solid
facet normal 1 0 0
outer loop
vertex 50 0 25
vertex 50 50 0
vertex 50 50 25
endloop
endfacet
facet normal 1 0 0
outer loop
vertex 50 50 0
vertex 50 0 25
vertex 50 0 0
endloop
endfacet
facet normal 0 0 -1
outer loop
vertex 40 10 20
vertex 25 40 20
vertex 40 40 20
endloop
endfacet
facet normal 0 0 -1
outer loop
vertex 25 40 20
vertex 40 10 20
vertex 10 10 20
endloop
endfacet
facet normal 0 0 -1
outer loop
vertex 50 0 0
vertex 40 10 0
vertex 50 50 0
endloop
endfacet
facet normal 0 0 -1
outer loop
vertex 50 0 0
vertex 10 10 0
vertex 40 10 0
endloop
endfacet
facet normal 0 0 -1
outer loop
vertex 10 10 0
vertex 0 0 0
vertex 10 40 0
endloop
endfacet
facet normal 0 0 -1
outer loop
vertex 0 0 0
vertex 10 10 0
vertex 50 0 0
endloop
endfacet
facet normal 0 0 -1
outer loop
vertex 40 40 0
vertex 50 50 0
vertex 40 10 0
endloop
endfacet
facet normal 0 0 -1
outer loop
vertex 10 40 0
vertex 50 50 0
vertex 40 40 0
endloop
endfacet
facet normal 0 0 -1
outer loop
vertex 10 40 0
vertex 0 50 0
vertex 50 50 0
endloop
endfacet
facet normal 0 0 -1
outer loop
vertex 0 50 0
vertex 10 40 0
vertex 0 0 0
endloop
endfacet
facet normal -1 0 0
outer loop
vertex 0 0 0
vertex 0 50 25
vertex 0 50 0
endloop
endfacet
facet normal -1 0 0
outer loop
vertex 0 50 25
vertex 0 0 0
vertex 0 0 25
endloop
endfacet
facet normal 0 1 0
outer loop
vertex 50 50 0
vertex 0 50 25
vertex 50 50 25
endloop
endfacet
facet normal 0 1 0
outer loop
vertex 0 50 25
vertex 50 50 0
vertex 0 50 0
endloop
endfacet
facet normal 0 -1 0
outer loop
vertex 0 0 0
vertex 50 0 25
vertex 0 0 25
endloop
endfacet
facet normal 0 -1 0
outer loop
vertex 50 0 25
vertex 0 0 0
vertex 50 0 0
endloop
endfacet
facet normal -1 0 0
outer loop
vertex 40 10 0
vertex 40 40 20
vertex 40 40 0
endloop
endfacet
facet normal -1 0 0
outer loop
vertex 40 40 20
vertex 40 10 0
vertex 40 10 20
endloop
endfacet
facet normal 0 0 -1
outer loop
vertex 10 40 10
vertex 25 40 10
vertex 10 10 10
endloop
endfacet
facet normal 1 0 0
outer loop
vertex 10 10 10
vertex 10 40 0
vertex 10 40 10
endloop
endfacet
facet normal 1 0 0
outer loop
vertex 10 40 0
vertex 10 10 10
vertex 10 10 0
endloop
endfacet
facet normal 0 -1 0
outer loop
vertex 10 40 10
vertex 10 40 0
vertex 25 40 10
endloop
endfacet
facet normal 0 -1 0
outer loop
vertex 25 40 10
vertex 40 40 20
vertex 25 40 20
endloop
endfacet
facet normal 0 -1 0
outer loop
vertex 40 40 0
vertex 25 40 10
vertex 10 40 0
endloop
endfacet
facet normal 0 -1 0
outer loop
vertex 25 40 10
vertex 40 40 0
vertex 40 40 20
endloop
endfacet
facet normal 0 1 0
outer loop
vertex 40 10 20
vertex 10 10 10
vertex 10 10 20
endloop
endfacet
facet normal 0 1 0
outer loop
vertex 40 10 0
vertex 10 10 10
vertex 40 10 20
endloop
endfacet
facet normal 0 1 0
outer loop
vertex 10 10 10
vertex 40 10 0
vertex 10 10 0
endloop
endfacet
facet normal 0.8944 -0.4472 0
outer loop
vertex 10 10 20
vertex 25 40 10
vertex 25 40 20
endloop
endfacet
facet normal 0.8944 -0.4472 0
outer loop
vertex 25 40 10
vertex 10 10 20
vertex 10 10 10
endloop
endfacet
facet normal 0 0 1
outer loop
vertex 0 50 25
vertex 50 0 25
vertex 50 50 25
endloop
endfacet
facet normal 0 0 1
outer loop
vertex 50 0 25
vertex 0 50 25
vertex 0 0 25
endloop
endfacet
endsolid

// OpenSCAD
// Base block with recessed square cavity and sloped edge
module base_block() {
    difference() {
        // Main rectangular block
        cube([50, 50, 20], center = false);
        
        // Recessed square cavity
        translate([10, 10, 0])
            cube([30, 30, 10], center = false);
        
        // Sloped edge on one side of the cavity
        translate([10, 10, 10])
            linear_extrude(height = 10)
                polygon(points = [[0, 0], [30, 0], [30, 30], [15, 30]]);
    }
}

// Top plate
module top_plate() {
    translate([0, 0, 20]) // Position above the base block
        cube([50, 50, 5], center = false);
}

// Assemble the components
module assembly() {
    base_block();
    top_plate();
}

// Render the assembly
assembly();
